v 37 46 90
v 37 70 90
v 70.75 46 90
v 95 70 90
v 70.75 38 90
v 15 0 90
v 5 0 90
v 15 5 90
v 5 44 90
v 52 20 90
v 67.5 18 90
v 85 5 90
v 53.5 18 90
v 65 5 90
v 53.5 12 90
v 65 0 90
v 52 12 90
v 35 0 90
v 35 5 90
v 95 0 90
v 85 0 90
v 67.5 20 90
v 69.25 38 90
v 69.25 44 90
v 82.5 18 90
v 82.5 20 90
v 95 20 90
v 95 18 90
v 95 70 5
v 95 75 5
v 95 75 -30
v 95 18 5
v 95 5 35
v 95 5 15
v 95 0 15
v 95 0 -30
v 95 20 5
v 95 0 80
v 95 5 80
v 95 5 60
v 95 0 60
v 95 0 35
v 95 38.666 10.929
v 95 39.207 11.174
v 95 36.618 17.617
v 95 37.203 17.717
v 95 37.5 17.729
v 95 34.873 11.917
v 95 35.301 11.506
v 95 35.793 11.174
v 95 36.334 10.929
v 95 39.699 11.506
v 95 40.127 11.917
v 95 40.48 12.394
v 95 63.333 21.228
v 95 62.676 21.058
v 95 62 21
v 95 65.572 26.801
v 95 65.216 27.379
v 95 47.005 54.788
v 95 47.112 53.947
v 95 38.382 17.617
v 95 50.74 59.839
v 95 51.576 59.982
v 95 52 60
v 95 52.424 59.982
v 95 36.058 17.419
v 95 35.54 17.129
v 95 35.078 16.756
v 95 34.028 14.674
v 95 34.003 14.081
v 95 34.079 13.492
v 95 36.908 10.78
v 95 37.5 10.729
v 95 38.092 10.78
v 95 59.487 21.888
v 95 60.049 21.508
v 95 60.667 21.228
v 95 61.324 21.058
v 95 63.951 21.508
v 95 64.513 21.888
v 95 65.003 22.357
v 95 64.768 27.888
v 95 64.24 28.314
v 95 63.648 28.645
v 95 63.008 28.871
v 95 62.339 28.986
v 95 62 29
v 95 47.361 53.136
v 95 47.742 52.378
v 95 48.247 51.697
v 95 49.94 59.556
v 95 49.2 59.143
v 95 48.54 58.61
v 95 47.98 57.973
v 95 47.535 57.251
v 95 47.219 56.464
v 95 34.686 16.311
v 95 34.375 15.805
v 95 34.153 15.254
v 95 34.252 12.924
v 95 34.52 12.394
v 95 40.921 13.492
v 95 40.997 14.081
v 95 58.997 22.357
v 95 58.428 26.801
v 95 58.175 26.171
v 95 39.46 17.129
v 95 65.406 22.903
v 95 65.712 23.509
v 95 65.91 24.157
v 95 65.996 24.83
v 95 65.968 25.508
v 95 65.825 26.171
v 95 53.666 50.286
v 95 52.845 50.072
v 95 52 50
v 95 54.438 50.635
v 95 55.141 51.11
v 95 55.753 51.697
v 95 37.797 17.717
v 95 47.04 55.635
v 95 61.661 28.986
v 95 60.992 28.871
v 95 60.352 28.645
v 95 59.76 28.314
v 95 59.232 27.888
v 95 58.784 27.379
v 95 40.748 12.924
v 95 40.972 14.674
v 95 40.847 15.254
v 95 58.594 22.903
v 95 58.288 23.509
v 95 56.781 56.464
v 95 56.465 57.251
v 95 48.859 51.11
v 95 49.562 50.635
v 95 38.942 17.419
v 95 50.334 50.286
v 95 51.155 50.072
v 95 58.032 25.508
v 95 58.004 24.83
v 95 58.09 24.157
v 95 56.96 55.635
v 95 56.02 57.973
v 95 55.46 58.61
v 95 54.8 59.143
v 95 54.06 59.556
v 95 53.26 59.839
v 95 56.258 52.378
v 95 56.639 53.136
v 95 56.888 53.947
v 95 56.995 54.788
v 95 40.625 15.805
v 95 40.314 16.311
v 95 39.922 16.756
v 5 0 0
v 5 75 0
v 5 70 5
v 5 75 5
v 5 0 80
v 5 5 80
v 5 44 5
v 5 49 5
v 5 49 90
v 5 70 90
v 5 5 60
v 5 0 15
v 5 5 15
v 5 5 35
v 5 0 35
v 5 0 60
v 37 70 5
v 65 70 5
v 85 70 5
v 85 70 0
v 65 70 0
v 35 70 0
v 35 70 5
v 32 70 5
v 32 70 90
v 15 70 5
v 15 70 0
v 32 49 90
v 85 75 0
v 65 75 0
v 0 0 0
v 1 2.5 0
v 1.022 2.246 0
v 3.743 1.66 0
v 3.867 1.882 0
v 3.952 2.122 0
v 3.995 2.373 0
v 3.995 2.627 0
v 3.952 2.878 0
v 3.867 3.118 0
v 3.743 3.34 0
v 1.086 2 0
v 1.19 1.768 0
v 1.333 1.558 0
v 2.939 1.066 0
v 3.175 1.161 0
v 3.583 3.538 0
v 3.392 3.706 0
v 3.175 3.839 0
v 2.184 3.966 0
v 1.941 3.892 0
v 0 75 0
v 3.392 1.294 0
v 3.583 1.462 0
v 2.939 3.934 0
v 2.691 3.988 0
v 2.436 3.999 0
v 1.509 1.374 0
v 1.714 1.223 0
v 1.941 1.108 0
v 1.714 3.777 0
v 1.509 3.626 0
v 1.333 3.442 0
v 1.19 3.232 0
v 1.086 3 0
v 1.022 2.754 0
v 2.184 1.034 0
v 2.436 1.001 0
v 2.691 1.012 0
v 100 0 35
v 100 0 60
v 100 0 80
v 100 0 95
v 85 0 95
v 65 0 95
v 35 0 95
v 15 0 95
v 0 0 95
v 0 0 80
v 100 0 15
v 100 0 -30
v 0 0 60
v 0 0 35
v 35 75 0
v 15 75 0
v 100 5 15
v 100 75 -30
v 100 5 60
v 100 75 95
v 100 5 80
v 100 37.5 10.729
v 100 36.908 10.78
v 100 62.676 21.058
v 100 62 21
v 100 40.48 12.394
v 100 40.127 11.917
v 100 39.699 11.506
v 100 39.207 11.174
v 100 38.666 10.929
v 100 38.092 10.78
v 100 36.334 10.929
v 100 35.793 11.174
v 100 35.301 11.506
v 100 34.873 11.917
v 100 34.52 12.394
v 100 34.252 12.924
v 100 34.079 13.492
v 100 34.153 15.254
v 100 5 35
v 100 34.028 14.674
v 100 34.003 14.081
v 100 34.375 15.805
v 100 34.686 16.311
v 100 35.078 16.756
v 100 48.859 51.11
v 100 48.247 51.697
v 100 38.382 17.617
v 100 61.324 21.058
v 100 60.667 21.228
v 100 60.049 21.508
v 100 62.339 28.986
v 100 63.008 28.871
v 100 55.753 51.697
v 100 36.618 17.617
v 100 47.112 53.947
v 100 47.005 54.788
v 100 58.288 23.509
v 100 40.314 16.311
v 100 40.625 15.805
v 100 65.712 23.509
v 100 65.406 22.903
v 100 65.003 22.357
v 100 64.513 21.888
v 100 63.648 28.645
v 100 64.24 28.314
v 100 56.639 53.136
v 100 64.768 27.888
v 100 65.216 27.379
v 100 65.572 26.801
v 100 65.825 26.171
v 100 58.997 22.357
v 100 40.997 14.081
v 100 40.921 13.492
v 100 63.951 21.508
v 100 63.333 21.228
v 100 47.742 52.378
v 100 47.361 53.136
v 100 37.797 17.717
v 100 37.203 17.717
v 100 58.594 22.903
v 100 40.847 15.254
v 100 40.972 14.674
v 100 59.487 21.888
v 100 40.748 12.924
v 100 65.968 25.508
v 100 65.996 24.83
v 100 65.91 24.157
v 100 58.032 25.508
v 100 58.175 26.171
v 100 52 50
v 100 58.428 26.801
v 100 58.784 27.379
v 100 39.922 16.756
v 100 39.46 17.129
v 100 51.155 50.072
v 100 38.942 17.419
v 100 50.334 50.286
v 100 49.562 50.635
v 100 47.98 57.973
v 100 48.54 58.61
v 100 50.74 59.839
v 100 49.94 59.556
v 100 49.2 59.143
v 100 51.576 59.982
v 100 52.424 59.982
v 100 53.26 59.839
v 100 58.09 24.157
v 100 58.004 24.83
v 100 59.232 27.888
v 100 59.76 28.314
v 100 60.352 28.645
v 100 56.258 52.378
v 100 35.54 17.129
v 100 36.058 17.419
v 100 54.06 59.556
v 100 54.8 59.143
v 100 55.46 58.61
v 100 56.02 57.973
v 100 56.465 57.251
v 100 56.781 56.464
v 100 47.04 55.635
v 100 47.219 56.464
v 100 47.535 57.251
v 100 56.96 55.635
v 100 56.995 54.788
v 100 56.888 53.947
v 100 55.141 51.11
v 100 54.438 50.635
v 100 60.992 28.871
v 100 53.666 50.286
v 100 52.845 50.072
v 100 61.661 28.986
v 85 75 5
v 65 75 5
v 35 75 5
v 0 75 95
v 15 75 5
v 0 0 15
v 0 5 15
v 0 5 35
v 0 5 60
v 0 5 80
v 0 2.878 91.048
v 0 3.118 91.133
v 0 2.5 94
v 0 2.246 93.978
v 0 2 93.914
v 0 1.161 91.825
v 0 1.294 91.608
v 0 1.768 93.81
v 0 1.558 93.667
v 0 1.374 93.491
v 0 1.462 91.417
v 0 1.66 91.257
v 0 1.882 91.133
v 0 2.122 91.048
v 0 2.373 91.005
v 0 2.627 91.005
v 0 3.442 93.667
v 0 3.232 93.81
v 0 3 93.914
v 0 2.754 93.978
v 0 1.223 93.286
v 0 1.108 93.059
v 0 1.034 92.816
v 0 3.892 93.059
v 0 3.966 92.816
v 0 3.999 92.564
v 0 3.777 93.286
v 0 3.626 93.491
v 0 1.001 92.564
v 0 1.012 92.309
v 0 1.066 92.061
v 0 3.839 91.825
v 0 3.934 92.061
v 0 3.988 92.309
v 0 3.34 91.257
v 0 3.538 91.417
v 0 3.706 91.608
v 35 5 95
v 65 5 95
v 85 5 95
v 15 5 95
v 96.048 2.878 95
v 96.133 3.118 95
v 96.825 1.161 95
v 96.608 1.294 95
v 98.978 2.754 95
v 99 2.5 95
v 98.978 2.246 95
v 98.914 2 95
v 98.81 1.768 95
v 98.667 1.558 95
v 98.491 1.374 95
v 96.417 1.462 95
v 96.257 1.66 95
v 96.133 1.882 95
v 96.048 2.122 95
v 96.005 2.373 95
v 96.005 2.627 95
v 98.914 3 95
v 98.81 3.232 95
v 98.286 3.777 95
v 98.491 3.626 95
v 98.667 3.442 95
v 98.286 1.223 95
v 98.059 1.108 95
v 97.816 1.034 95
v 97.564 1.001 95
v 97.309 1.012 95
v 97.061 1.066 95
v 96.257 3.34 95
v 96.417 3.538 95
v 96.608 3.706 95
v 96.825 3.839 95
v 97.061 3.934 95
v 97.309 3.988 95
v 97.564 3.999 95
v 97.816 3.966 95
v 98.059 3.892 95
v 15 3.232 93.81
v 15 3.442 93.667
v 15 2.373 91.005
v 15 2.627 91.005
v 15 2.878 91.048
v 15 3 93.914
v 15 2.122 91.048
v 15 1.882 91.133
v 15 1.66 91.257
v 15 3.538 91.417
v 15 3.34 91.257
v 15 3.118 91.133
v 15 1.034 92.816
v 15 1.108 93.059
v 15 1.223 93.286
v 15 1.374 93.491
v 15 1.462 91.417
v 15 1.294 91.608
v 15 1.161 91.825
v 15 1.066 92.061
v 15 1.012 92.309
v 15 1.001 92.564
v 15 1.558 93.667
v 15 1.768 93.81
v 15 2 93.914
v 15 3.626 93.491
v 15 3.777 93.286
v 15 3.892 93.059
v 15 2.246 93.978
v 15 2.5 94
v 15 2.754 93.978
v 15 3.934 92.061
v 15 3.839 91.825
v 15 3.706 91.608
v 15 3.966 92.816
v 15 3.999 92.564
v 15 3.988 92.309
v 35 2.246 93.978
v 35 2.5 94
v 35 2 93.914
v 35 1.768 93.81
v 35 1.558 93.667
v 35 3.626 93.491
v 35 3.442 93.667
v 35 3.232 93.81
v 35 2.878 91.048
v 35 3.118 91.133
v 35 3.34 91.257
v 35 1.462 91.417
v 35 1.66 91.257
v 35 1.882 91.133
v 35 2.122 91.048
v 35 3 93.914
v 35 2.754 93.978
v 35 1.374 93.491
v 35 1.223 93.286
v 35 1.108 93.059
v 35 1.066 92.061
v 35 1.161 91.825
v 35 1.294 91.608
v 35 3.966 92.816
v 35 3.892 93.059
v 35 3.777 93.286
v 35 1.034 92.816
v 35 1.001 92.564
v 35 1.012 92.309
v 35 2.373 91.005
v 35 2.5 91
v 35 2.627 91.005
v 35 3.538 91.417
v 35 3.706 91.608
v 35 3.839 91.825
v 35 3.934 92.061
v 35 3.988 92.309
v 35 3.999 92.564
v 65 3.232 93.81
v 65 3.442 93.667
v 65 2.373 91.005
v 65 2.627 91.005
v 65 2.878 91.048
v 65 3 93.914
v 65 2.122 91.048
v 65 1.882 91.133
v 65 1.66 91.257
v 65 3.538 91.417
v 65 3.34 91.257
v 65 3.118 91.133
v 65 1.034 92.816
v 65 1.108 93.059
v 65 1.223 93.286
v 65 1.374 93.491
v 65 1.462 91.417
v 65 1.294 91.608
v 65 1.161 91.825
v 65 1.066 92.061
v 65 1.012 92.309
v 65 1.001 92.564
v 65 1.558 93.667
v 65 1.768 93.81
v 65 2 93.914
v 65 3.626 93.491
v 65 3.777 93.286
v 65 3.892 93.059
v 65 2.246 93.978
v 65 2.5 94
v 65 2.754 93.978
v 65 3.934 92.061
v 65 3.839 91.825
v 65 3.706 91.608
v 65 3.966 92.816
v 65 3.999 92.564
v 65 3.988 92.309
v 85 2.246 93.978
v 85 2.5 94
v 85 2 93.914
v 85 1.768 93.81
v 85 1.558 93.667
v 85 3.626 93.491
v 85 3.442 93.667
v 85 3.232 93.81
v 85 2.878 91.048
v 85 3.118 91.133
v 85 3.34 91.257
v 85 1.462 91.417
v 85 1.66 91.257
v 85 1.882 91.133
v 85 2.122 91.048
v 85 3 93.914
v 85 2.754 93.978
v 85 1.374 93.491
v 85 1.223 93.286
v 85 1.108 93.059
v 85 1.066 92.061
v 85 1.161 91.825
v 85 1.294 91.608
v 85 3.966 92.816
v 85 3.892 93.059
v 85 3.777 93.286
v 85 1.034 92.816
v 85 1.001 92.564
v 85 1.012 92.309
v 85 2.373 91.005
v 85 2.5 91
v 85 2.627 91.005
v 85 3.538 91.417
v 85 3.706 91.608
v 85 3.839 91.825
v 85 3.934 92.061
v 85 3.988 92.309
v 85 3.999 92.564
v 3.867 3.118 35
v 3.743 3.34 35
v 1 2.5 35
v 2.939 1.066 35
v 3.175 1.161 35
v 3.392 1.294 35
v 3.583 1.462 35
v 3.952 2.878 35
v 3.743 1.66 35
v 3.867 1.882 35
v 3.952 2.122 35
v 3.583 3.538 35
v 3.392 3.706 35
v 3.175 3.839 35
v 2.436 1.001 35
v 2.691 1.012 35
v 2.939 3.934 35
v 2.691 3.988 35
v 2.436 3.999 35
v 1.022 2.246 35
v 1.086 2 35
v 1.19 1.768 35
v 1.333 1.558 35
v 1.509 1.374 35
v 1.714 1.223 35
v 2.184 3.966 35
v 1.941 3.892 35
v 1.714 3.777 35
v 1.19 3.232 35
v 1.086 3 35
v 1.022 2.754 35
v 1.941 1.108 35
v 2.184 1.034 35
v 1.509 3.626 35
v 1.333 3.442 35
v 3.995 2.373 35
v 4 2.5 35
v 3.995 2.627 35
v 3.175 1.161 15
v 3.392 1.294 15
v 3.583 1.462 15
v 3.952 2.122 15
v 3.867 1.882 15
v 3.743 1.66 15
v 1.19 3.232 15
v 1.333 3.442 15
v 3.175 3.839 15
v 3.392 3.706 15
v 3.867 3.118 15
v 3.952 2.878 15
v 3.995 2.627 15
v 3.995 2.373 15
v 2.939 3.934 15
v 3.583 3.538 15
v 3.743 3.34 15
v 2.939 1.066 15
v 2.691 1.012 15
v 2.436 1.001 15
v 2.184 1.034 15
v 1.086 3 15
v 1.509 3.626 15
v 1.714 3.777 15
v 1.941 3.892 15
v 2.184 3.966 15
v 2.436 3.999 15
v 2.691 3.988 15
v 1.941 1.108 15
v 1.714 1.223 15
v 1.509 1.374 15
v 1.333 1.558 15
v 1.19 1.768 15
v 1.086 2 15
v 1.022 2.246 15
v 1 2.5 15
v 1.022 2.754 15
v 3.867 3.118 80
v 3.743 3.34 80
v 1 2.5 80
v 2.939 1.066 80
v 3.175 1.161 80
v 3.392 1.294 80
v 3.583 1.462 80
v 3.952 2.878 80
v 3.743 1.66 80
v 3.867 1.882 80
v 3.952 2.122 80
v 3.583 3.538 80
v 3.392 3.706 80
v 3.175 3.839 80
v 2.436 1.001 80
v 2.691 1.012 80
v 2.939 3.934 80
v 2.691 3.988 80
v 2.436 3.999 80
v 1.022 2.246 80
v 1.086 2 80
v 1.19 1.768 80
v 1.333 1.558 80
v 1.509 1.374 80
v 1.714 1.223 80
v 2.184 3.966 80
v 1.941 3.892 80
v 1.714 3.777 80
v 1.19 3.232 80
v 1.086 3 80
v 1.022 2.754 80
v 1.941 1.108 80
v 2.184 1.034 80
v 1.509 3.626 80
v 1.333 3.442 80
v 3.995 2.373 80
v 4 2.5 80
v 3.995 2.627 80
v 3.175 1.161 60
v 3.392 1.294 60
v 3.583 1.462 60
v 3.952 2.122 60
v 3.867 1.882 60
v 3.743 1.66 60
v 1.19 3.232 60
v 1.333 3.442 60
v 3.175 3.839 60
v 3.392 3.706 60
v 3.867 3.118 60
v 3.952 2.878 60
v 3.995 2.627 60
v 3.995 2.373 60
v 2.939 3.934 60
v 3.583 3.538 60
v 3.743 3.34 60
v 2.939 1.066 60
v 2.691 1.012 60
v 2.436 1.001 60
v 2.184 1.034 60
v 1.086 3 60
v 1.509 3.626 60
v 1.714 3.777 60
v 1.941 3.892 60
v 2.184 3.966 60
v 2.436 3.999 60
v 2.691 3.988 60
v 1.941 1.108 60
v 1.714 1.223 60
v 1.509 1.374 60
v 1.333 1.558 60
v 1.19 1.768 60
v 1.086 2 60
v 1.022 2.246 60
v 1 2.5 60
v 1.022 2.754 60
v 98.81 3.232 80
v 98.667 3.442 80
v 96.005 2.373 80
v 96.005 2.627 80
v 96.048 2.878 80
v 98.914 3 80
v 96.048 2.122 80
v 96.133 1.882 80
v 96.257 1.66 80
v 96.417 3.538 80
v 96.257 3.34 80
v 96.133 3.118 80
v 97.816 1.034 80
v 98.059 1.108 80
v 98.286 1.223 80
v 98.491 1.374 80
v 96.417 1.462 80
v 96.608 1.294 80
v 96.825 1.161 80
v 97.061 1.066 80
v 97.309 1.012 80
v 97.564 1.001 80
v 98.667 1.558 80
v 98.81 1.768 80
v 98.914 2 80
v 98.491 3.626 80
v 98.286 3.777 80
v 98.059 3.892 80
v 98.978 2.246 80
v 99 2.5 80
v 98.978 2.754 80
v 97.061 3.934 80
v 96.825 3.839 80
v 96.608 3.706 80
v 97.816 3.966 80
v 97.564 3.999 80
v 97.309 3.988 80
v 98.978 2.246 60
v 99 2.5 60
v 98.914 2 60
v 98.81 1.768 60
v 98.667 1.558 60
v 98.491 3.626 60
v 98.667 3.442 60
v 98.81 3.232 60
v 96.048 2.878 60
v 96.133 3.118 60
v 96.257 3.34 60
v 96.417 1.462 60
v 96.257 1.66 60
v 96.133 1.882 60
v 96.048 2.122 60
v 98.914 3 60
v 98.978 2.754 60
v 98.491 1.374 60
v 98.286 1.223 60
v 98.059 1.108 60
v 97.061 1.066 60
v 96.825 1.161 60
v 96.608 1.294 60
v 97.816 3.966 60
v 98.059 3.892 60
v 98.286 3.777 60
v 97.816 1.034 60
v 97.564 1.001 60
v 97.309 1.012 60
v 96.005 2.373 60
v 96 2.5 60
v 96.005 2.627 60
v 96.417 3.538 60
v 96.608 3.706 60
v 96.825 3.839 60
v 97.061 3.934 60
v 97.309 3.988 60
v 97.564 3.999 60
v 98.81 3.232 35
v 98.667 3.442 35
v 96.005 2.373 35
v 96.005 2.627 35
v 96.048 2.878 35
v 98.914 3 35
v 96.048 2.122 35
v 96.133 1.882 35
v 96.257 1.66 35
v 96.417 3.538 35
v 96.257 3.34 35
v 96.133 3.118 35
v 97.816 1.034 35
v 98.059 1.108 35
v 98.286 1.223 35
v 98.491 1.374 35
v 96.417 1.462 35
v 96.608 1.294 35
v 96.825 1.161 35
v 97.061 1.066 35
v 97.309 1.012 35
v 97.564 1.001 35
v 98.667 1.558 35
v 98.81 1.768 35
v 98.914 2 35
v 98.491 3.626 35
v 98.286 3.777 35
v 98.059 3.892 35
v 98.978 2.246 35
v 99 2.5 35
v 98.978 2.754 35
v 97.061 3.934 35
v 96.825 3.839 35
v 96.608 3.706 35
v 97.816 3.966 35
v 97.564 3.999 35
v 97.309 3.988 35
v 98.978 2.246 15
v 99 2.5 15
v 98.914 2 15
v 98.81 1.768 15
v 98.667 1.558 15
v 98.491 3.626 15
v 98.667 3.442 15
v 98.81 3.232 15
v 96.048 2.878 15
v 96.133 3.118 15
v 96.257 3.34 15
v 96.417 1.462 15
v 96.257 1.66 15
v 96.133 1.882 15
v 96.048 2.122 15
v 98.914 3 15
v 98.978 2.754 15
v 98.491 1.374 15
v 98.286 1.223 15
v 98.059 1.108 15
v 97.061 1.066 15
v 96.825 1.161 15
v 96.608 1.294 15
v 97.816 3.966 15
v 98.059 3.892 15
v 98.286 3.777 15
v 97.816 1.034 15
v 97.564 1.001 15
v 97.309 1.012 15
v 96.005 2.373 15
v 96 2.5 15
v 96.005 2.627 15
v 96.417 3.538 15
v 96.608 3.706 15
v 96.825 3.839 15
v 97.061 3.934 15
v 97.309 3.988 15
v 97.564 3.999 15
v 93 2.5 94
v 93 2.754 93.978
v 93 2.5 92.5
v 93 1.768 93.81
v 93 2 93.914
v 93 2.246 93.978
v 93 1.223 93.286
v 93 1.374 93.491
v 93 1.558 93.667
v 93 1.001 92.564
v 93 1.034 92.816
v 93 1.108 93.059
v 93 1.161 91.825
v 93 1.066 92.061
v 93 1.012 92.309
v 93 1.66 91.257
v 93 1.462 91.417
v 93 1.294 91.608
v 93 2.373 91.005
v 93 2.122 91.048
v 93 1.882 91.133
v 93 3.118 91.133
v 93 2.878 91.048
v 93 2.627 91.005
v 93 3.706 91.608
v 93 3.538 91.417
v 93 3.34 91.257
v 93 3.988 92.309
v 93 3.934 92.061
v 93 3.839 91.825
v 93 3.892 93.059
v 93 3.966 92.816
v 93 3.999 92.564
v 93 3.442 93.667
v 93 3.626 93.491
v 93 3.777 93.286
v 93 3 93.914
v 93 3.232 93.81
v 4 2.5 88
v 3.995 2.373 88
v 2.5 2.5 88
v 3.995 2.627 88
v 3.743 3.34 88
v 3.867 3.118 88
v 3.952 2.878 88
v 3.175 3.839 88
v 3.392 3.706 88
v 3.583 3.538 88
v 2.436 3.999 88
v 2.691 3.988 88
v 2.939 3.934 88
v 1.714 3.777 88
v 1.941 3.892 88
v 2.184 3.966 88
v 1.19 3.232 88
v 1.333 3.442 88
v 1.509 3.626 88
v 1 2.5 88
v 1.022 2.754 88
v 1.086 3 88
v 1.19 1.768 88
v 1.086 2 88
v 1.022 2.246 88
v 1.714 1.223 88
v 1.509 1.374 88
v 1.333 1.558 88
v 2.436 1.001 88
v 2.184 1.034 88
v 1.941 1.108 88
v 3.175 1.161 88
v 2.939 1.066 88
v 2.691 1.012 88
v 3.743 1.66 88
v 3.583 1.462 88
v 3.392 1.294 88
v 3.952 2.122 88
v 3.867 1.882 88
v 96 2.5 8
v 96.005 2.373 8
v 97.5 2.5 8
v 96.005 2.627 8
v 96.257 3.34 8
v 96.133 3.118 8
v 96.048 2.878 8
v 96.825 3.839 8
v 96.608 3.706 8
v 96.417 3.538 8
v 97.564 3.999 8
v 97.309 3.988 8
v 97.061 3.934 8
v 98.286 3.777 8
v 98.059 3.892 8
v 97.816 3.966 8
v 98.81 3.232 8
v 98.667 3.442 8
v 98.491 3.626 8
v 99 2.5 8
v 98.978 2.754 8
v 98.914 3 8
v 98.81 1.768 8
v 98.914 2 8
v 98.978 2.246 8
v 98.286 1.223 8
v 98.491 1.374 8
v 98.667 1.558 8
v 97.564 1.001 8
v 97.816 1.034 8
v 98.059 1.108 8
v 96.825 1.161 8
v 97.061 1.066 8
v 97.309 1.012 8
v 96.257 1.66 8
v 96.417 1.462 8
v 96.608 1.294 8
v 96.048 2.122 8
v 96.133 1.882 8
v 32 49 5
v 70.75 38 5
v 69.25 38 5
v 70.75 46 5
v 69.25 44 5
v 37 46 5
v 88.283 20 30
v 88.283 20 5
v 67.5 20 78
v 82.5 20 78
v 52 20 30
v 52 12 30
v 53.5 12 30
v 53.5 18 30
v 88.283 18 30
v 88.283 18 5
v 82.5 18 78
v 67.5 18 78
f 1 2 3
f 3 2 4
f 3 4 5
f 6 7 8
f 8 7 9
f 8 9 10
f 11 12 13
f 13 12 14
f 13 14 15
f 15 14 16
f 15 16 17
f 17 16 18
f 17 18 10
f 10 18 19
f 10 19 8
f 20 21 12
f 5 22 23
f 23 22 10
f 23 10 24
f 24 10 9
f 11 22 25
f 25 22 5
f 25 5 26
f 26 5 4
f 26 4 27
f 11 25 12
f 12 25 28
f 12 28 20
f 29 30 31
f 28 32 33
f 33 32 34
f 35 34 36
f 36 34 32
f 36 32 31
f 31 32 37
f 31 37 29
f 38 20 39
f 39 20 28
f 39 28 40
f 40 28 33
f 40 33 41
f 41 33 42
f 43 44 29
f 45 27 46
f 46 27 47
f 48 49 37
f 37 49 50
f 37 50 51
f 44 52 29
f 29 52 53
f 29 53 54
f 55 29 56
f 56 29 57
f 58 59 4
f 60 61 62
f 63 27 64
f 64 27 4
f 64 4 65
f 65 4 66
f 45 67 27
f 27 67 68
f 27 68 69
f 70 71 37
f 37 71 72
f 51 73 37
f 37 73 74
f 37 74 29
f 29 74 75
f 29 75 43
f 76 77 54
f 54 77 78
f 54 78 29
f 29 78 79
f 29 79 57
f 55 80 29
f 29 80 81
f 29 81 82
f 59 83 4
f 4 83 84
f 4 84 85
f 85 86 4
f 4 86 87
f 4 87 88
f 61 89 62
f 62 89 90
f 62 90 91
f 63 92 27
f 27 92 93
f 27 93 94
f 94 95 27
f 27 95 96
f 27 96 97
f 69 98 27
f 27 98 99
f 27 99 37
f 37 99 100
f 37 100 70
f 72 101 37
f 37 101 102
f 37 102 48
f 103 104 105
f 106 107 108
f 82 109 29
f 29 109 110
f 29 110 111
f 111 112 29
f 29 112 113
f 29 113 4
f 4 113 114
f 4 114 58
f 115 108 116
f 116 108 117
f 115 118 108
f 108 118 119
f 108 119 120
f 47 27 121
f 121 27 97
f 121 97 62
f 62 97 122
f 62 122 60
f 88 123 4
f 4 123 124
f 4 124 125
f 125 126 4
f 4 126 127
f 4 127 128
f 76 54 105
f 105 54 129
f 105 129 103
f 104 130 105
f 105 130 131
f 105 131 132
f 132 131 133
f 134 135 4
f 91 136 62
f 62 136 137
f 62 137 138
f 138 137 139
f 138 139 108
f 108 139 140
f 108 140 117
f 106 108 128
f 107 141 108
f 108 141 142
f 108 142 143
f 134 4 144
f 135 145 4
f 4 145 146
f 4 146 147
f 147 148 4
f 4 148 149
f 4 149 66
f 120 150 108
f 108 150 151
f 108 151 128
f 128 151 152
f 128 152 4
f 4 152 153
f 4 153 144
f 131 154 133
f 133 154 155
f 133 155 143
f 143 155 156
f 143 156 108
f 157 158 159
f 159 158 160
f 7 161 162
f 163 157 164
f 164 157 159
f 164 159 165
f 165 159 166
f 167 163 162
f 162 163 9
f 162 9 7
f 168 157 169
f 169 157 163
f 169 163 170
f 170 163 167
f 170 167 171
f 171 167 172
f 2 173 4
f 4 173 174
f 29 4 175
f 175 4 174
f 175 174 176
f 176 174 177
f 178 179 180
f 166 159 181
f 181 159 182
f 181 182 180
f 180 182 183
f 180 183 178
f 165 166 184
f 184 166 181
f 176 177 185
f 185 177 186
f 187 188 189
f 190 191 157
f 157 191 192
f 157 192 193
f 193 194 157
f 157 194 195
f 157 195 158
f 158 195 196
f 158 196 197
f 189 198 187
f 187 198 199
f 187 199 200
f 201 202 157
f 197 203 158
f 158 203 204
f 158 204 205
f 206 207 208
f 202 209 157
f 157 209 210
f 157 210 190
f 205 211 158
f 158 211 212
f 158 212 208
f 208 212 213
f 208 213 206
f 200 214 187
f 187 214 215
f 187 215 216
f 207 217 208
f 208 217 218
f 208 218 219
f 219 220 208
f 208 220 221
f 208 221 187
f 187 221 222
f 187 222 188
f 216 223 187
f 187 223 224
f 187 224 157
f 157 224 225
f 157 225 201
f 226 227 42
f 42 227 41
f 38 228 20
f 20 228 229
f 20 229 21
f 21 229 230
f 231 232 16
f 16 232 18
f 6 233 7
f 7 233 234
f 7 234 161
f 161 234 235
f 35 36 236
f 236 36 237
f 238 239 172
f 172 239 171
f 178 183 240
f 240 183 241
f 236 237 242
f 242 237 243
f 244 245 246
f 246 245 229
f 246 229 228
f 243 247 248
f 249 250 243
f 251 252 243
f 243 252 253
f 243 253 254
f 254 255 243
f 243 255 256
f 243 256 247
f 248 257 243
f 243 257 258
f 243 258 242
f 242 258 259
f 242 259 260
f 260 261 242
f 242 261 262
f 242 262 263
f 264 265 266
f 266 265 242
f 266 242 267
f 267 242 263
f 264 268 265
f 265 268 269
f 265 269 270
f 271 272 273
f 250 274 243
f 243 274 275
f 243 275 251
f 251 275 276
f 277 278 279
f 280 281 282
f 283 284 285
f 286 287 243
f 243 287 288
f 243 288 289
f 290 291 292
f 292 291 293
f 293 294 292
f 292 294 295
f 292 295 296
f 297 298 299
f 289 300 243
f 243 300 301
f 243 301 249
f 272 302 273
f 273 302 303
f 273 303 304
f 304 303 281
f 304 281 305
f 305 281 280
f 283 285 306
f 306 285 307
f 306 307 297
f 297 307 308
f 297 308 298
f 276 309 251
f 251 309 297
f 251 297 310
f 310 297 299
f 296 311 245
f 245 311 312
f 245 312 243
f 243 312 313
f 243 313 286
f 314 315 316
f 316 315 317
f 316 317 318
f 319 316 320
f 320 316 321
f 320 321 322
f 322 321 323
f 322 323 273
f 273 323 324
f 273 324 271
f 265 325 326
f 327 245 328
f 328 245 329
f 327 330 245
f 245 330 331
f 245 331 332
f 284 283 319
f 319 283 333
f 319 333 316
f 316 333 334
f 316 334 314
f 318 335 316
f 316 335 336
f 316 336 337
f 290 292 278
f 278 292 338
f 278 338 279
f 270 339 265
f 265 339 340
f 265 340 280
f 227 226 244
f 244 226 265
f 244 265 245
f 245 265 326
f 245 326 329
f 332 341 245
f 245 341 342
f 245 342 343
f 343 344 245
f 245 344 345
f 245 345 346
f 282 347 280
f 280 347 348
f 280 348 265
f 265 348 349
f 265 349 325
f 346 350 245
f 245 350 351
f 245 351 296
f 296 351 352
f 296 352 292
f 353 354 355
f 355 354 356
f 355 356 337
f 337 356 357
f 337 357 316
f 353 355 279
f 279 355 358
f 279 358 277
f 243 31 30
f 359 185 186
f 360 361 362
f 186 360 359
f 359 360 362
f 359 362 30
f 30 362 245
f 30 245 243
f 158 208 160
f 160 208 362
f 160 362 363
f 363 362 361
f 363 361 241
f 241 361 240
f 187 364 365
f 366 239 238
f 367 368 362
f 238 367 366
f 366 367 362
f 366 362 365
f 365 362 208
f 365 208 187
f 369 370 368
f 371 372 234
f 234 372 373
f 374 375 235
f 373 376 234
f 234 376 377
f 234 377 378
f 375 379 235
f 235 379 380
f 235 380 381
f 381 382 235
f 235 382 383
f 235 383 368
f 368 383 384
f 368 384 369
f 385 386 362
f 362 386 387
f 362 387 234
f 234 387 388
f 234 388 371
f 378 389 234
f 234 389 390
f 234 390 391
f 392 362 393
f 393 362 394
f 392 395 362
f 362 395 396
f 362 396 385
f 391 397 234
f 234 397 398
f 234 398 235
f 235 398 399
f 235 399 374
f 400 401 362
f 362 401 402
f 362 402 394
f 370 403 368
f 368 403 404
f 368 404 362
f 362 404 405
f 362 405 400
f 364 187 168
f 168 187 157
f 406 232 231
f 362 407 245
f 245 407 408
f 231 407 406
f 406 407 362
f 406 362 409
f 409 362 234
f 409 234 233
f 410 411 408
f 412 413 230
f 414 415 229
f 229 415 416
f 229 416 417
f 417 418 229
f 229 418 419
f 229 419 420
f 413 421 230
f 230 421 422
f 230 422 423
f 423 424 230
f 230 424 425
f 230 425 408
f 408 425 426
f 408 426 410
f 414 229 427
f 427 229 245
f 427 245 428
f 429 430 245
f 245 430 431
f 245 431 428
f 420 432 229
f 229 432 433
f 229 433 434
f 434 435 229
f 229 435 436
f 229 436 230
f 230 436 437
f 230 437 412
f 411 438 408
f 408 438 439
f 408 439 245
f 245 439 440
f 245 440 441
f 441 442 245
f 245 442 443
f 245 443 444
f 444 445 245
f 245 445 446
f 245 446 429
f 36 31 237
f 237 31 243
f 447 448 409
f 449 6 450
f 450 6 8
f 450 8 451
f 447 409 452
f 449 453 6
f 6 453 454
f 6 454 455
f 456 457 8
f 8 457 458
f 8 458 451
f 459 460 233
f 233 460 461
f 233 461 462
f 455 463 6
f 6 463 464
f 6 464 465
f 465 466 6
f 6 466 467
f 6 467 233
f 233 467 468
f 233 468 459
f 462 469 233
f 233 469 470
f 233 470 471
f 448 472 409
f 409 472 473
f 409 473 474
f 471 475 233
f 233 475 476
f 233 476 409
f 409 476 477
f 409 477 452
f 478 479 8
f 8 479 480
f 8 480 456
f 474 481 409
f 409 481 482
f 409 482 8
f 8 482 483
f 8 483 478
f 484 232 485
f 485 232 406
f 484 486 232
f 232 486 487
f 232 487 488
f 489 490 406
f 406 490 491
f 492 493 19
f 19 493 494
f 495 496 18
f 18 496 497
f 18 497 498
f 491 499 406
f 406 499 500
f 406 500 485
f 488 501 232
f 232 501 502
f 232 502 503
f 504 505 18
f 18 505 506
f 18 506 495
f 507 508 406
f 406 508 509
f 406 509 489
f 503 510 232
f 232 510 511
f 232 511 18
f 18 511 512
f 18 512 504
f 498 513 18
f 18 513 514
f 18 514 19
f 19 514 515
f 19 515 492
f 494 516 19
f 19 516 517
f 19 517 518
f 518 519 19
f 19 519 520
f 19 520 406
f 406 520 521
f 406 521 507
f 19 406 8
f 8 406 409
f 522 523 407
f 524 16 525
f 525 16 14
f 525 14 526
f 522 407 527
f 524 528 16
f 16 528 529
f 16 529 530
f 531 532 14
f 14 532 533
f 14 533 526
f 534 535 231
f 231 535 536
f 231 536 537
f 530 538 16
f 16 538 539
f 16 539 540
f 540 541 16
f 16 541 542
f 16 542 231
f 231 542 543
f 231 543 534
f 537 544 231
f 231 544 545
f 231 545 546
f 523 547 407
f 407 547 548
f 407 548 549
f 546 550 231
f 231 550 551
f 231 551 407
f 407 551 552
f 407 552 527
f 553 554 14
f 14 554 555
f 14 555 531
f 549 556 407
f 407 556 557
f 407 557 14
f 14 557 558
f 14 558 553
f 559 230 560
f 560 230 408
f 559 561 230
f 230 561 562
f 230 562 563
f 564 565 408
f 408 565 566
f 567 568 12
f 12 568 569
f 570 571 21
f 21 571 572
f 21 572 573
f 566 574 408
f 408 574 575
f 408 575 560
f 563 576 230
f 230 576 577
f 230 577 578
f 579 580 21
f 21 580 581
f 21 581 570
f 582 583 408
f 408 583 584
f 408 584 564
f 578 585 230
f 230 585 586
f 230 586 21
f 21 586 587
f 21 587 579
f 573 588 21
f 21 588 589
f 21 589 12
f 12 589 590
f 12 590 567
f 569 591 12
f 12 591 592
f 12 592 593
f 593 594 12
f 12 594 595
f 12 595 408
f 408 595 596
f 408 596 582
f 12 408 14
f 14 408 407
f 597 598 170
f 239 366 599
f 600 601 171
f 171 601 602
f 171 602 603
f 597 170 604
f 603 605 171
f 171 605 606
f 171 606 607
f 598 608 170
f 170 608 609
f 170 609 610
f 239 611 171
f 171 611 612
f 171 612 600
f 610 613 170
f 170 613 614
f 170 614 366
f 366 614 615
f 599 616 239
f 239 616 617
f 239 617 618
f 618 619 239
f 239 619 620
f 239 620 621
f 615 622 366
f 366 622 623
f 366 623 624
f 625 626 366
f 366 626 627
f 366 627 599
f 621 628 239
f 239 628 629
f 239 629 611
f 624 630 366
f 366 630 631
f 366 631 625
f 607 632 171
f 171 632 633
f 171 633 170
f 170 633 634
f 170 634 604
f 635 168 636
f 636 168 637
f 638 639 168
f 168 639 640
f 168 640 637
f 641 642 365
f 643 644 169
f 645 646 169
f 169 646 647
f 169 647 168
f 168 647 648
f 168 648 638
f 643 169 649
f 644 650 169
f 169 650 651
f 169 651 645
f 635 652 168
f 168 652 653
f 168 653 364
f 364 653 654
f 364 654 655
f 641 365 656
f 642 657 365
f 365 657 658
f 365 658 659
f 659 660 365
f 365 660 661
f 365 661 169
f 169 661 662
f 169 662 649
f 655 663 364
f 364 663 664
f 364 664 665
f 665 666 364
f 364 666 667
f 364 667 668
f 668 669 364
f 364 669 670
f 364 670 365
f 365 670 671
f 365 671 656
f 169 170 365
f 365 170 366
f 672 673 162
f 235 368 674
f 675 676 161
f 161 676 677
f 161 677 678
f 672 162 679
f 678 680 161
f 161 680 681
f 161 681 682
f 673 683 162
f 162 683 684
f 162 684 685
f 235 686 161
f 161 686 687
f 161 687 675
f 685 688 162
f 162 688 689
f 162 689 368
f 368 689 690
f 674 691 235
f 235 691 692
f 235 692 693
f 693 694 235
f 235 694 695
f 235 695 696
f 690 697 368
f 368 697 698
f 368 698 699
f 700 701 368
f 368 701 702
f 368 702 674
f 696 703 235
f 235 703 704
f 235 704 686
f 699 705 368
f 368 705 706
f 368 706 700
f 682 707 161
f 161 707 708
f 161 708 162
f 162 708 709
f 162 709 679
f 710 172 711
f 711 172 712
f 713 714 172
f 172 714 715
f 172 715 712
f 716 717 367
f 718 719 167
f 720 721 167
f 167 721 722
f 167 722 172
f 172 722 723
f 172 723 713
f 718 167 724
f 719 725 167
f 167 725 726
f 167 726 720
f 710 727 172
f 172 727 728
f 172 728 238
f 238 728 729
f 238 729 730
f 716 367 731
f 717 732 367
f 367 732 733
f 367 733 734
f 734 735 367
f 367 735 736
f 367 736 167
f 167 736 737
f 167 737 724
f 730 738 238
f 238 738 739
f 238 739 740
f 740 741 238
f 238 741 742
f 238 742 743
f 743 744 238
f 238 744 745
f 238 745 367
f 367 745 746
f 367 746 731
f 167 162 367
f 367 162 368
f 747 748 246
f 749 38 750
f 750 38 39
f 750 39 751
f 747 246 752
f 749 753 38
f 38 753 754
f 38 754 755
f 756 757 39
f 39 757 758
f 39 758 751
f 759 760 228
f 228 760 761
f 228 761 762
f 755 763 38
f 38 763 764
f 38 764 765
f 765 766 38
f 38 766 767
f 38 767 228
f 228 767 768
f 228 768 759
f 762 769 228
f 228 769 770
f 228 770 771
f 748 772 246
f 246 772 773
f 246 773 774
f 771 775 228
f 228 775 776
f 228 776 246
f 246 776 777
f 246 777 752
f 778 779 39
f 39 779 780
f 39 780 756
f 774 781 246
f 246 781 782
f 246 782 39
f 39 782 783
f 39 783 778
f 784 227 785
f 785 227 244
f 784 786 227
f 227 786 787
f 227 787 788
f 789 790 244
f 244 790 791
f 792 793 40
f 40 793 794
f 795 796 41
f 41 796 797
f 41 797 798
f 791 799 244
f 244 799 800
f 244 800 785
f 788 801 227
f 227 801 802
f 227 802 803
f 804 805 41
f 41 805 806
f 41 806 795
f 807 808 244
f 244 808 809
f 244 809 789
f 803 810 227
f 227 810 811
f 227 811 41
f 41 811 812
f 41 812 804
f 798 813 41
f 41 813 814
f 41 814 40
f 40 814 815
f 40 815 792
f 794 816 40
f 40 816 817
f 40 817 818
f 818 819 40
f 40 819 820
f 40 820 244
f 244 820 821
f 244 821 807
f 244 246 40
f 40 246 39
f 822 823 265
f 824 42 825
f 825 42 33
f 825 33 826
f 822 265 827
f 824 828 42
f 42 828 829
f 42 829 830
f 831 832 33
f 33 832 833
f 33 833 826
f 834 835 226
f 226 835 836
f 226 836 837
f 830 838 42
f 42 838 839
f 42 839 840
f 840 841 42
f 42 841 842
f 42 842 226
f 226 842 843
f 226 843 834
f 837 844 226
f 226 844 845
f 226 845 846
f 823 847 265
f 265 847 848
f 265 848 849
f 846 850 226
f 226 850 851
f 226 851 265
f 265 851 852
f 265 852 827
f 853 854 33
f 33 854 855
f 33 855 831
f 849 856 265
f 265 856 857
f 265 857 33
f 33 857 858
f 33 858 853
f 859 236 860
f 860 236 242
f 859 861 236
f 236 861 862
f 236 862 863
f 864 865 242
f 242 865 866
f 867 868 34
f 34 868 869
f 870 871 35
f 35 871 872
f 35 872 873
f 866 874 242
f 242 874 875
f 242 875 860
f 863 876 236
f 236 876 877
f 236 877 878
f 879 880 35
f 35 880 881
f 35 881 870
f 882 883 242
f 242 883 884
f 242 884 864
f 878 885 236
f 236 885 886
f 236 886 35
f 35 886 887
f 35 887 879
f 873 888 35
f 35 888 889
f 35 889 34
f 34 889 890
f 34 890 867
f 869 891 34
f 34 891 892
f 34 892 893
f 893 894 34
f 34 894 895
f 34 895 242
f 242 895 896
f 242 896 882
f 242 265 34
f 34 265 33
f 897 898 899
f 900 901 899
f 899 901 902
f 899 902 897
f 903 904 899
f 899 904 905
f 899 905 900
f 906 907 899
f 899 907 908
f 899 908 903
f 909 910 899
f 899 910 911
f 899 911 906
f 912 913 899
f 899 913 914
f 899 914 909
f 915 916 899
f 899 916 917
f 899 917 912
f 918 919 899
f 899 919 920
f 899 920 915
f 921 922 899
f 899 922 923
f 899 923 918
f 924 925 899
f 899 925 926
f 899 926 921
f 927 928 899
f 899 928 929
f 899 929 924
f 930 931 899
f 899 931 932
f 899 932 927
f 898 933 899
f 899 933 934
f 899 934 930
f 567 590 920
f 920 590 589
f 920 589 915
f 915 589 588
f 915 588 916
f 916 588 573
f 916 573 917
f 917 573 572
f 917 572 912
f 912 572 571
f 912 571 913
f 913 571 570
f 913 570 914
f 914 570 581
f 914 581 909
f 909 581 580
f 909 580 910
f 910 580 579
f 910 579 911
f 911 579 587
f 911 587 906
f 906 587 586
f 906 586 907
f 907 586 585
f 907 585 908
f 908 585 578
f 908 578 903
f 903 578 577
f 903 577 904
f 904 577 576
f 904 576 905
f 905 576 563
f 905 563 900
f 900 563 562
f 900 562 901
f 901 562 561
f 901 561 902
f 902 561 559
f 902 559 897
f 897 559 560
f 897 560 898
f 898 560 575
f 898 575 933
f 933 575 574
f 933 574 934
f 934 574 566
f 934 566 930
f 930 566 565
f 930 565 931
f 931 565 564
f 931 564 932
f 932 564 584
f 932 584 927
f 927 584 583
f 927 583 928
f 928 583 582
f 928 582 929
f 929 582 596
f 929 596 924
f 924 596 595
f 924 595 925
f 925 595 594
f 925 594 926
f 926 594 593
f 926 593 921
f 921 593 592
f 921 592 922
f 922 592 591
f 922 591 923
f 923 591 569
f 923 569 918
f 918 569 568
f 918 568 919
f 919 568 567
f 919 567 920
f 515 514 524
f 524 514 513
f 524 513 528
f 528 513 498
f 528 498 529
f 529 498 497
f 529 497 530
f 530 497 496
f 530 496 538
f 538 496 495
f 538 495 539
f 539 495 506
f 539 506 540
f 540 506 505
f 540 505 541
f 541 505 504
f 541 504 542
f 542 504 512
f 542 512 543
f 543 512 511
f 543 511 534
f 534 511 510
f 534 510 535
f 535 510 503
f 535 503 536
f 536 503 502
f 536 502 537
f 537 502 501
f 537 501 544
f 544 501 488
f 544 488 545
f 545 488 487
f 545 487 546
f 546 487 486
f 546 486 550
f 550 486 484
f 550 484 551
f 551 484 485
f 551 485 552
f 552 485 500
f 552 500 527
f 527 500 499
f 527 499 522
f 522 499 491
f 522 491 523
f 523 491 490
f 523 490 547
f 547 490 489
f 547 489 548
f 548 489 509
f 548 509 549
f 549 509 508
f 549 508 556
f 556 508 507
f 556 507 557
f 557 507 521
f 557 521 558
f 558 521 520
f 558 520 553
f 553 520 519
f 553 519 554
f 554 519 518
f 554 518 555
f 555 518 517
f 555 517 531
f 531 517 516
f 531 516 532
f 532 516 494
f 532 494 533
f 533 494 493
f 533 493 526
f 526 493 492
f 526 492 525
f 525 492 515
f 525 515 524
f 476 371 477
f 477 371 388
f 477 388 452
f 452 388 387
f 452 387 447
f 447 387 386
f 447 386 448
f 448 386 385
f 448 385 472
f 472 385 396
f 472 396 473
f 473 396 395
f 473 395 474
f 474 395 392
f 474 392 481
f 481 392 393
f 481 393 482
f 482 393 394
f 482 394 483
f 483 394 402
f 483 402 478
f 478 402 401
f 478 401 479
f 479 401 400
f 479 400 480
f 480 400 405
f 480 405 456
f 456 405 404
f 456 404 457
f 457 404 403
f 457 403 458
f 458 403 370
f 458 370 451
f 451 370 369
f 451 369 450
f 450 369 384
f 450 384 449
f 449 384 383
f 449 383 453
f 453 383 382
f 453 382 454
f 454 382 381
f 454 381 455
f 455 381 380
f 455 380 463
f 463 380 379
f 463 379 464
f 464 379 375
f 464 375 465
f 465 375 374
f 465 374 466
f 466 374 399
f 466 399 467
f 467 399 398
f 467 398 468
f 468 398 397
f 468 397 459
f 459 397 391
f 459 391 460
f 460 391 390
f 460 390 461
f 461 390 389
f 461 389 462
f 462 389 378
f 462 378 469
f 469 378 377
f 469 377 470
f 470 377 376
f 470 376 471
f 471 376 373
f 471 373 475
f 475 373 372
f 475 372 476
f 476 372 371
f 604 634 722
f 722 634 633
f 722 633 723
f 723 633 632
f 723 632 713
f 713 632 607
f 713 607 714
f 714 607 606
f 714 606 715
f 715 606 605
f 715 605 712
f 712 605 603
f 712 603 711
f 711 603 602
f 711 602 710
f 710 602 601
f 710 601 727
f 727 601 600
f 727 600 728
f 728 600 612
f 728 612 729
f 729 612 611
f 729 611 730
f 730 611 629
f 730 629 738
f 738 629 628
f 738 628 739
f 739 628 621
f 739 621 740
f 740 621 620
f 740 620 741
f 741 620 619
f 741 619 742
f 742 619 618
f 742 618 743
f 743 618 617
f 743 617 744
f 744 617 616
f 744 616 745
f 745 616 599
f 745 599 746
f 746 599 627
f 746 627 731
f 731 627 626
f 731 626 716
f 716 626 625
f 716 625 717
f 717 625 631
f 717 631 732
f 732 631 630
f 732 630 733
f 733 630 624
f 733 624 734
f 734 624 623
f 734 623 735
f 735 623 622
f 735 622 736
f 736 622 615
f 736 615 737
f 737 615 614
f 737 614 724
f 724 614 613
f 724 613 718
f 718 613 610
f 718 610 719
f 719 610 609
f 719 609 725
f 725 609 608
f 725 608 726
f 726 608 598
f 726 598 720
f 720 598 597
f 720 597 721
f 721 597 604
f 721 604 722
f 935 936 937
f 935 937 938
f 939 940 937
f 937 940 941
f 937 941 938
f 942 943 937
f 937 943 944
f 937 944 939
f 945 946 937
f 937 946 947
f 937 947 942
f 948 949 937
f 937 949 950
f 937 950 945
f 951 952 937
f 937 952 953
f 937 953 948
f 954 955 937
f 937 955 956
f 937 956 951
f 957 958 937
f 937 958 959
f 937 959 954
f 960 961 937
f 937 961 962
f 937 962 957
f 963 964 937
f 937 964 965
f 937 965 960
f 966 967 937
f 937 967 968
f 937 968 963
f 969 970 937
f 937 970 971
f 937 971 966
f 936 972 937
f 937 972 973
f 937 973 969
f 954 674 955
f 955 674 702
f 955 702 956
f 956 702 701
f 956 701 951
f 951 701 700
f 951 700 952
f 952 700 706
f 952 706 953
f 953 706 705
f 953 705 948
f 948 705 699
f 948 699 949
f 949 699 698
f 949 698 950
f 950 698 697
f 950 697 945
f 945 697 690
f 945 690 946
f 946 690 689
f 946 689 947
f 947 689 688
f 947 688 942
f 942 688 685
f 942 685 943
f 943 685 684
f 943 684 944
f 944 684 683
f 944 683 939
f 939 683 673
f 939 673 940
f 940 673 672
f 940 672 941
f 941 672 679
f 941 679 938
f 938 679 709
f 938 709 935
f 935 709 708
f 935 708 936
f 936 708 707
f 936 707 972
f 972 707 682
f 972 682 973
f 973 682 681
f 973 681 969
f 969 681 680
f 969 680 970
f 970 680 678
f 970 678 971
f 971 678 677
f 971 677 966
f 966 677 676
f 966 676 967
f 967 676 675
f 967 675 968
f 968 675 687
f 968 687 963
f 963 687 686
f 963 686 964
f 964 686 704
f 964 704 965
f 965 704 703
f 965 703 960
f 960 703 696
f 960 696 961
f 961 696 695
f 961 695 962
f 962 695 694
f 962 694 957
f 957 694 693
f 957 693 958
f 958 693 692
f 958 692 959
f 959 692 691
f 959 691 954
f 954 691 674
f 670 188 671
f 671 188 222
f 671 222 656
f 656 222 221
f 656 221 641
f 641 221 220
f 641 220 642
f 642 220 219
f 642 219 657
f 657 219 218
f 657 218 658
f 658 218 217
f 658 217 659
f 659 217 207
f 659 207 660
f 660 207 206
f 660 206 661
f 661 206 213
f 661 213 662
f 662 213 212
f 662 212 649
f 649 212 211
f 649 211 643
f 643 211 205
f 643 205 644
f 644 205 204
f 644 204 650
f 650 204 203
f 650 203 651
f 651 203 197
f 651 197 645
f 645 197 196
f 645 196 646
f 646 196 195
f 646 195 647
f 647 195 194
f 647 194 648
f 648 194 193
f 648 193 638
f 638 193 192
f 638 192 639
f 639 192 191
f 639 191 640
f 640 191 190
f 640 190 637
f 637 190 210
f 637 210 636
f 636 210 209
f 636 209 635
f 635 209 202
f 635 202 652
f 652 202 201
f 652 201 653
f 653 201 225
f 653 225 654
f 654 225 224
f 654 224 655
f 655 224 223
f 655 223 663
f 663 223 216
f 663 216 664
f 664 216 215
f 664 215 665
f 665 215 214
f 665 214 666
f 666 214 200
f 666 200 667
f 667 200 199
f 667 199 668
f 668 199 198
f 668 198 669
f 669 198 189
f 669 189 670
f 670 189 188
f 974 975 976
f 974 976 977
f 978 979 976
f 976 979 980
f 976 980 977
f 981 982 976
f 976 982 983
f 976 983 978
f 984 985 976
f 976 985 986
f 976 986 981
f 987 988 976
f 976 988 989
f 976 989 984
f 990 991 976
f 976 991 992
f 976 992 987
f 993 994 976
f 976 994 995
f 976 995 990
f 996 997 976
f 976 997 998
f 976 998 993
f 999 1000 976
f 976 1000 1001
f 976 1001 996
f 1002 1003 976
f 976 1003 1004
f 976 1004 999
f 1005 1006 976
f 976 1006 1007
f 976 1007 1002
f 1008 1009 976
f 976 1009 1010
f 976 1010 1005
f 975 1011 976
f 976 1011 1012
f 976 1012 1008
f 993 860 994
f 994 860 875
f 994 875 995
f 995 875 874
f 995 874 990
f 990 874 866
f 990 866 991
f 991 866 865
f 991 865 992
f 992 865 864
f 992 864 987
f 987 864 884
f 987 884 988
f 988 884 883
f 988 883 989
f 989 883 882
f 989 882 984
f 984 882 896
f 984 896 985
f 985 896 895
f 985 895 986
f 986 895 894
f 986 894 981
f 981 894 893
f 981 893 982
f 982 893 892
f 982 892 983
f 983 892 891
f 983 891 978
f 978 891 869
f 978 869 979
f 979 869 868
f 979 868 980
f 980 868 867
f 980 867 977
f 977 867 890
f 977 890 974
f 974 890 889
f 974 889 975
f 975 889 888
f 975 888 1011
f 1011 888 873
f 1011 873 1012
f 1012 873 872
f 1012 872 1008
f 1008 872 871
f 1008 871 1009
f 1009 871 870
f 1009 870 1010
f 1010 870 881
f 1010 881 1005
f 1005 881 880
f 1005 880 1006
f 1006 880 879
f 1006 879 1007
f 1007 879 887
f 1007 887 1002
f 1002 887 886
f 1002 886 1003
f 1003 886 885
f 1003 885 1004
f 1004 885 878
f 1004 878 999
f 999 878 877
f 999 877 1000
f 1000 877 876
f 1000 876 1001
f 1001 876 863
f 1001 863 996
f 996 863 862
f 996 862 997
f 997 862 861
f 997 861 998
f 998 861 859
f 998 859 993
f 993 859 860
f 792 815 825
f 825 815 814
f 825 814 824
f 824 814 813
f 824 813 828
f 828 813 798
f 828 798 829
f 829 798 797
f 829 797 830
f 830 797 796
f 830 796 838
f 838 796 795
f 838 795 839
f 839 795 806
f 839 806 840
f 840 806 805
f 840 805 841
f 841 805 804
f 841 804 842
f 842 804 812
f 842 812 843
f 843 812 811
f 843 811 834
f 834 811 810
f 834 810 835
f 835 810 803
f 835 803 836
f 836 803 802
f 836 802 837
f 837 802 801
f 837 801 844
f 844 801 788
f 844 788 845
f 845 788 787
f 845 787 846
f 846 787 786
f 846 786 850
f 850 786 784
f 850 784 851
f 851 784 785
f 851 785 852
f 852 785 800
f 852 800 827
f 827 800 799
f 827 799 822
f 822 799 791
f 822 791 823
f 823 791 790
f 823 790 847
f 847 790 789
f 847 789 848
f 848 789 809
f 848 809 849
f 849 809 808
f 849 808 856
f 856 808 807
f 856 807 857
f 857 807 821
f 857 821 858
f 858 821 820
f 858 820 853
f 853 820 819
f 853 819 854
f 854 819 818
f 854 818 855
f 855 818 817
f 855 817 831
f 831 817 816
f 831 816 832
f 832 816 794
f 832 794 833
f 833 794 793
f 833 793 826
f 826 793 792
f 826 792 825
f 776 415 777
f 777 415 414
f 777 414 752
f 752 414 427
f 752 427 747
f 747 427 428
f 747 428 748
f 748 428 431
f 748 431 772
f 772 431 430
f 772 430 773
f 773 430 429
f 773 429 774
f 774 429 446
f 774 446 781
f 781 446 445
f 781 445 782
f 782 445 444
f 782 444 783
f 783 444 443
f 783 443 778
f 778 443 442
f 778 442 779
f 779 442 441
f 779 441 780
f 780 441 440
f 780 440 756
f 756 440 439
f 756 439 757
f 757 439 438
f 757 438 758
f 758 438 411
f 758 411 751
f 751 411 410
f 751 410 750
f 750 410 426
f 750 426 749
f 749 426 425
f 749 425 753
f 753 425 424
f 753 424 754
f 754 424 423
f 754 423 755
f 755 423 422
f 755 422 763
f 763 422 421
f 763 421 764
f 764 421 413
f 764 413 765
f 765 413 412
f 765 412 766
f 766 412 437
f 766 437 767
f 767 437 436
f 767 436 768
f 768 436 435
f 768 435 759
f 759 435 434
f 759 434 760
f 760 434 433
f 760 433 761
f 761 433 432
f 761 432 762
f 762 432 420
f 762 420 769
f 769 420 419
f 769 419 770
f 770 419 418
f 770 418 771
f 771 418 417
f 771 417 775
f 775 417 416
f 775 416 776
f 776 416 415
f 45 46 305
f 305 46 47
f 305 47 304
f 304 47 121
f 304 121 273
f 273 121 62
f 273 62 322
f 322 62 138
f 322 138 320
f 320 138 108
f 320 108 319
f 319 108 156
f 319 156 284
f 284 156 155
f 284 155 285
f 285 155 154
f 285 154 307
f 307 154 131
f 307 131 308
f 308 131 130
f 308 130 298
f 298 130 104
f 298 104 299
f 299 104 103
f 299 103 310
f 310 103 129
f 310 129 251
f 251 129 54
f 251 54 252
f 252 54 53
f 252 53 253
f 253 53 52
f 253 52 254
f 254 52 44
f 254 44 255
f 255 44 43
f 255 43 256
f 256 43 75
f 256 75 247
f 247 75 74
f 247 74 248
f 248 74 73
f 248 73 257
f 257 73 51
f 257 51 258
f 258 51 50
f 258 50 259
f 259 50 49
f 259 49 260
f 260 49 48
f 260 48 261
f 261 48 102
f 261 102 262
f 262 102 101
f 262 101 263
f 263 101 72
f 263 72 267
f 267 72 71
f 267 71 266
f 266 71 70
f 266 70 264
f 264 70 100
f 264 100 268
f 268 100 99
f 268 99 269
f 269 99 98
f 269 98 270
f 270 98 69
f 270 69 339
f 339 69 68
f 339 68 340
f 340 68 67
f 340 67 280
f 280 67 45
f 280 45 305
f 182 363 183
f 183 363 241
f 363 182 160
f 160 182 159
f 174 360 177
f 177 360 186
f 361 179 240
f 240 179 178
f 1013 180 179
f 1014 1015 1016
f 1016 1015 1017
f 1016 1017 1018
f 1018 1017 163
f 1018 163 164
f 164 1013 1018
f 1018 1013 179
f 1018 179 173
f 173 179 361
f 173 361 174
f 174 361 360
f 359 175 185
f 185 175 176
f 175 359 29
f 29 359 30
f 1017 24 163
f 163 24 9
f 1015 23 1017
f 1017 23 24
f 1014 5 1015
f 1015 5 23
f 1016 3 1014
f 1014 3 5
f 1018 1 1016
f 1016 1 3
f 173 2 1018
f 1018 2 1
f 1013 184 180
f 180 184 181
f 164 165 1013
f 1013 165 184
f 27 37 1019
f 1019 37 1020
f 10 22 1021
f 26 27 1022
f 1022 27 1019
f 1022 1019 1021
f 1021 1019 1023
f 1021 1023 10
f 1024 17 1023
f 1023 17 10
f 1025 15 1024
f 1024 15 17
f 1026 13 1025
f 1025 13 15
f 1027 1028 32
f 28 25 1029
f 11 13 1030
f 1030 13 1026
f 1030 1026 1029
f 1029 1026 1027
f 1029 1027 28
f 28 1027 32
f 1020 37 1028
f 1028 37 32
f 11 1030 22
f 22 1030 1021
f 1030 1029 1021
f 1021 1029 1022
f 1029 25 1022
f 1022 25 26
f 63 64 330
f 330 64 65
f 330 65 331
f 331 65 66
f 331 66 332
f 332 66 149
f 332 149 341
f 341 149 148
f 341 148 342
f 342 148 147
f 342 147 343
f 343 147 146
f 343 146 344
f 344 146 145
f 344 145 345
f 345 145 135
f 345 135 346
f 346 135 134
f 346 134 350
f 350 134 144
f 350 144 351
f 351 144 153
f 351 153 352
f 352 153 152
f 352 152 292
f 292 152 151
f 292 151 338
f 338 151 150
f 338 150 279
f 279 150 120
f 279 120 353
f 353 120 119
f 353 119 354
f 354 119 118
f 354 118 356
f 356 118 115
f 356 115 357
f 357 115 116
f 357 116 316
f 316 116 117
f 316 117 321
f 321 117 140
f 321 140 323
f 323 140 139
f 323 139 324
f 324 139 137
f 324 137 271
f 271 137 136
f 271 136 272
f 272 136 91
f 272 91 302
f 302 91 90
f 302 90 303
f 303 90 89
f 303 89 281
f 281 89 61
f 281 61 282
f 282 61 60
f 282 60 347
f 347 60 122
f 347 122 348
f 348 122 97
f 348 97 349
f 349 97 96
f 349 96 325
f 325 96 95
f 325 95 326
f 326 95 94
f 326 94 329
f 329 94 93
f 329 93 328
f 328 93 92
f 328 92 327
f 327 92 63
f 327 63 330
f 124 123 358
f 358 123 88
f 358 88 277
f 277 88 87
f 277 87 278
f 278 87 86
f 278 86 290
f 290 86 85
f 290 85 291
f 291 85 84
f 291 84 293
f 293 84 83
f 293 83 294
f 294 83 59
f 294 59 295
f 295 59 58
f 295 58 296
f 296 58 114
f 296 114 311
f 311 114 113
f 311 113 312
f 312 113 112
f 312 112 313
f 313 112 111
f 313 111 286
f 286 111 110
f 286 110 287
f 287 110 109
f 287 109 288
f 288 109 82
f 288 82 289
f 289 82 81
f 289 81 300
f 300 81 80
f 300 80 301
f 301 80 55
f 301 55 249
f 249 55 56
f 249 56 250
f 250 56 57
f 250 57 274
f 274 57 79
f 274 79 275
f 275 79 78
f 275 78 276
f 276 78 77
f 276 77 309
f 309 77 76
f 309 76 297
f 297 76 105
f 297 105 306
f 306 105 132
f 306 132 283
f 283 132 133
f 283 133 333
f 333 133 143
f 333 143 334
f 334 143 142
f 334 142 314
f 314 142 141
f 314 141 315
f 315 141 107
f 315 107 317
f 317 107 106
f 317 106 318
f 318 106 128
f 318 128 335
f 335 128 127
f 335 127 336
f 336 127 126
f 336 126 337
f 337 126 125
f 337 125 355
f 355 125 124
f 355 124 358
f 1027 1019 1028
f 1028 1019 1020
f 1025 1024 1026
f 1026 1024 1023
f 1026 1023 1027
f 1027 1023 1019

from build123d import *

# Parameters (mm, degrees)
VOLUME_BOITIER_DEPTH     = 90
ESQUISSE2_W              = 100
ESQUISSE2_H              = 75
FACE_INF_RIEURE_DEPTH    = 5
ESQUISSE3_W              = 5
ESQUISSE3_H              = 75
FACE_PILE_DEPTH          = 30
ESQUISSE7_W              = 5
ESQUISSE7_H              = 20
ESQUISSE7_W_2            = 20
ESQUISSE7_H_2            = 5
ENL_V_MAT_EXTRU_2_DEPTH  = 5
ESQUISSE8_R              = 1.5
ENL_V_MAT_EXTRU_3_DEPTH  = 93
ESQUISSE9_R              = 1.5
ENL_V_MAT_EXTRU_4_DEPTH  = 88
ESQUISSE10_R             = 1.5
ENL_V_MAT_EXTRU_5_DEPTH  = 87
ENL_V_MAT_EXTRU_6_REACH  = 159.003
ESQUISSE11_R             = 3.5
ESQUISSE14_W             = 10
ESQUISSE14_H             = 5
ESQUISSE14_W_2           = 30
ENL_V_MAT_EXTRU_8_DEPTH  = 5
BOSS_EXTRU_7_DEPTH       = 85
ENL_V_MAT_EXTRU_10_REACH = 151.245
ESQUISSE15_W             = 15
ESQUISSE15_H             = 12
ENL_V_MAT_EXTRU_11_REACH = 159.003
ESQUISSE16_R             = 4
ESQUISSE16_R_2           = 5
ENL_V_MAT_EXTRU_12_DEPTH = 25


with BuildPart() as part:
    # Esquisse1 → volume boitier (new body)
    with BuildSketch(Plane.XY):
        Polygon((0, 75), (0, 0), (5, 0), (5, 70), (95, 70), (95, 0), (100, 0), (100, 75), align=None)
    extrude(amount=VOLUME_BOITIER_DEPTH)

    # Esquisse2 → face inférieure (add)
    with BuildSketch(Plane.XY.offset(90)):
        with Locations((50, 37.5)):
            Rectangle(ESQUISSE2_W, ESQUISSE2_H)
    extrude(amount=FACE_INF_RIEURE_DEPTH)

    # Esquisse3 → face pile (add)
    with BuildSketch(Plane(origin=(0, 0, 0), x_dir=(-1, 0, 0), z_dir=(0, 0, -1))):
        with Locations((-97.5, 37.5)):
            Rectangle(ESQUISSE3_W, ESQUISSE3_H)
    extrude(amount=FACE_PILE_DEPTH)

    # Esquisse7 → Enlèv. mat.-Extru.2 (cut)
    with BuildSketch(Plane.XZ):
        with Locations((2.5, 25)):
            Rectangle(ESQUISSE7_W, ESQUISSE7_H)
        with Locations((2.5, 70)):
            Rectangle(ESQUISSE7_W, ESQUISSE7_H)
        with Locations((25, 92.5)):
            Rectangle(ESQUISSE7_W_2, ESQUISSE7_H_2)
        with Locations((75, 92.5)):
            Rectangle(ESQUISSE7_W_2, ESQUISSE7_H_2)
        with Locations((97.5, 70)):
            Rectangle(ESQUISSE7_W, ESQUISSE7_H)
        with Locations((97.5, 25)):
            Rectangle(ESQUISSE7_W, ESQUISSE7_H)
    extrude(amount=-ENL_V_MAT_EXTRU_2_DEPTH, mode=Mode.SUBTRACT)

    # Esquisse8 → Enlèv. mat.-Extru.3 (cut)
    with BuildSketch(Plane.ZY):
        with Locations((92.5, 2.5)):
            Circle(ESQUISSE8_R)
    extrude(amount=-ENL_V_MAT_EXTRU_3_DEPTH, mode=Mode.SUBTRACT)

    # Esquisse9 → Enlèv. mat.-Extru.4 (cut)
    with BuildSketch(Plane(origin=(0, 0, 0), x_dir=(-1, 0, 0), z_dir=(0, 0, -1))):
        with Locations((-2.5, 2.5)):
            Circle(ESQUISSE9_R)
    extrude(amount=-ENL_V_MAT_EXTRU_4_DEPTH, mode=Mode.SUBTRACT)

    # Esquisse10 → Enlèv. mat.-Extru.5 (cut)
    with BuildSketch(Plane.XY.offset(95)):
        with Locations(Location((97.5, 2.5, 0), (0, 0, 180))):
            Circle(ESQUISSE10_R)
    extrude(amount=-ENL_V_MAT_EXTRU_5_DEPTH, mode=Mode.SUBTRACT)

    # Esquisse11 → Enlèv. mat.-Extru.6 (cut, up to next)
    with BuildSketch(Plane(origin=(100, 0, 0), x_dir=(0, 0, -1), z_dir=(1, 0, 0)), mode=Mode.PRIVATE) as enl_v_mat_extru_6_sk1:
        with Locations((-14.229443479, 37.5)):
            Circle(ESQUISSE11_R)
    enl_v_mat_extru_6_tool1 = extrude(enl_v_mat_extru_6_sk1.sketch, amount=-ENL_V_MAT_EXTRU_6_REACH, mode=Mode.PRIVATE) & part.part
    add(enl_v_mat_extru_6_tool1.solids().sort_by_distance((100, 37.5, 14.229443))[0], mode=Mode.SUBTRACT)

    # Esquisse14 → Enlèv. mat.-Extru.8 (cut)
    with BuildSketch(Plane(origin=(0, 0, 0), x_dir=(-1, 0, 0), z_dir=(0, 0, -1))):
        with Locations((-90, 72.5)):
            Rectangle(ESQUISSE14_W, ESQUISSE14_H)
        with Locations((-50, 72.5)):
            Rectangle(ESQUISSE14_W_2, ESQUISSE14_H)
        with Locations((-10, 72.5)):
            Rectangle(ESQUISSE14_W, ESQUISSE14_H)
    extrude(amount=-ENL_V_MAT_EXTRU_8_DEPTH, mode=Mode.SUBTRACT)

    # Esquisse12 → Boss.-Extru.7 (add)
    with BuildSketch(Plane(origin=(0, 0, 90), x_dir=(-1, 0, 0), z_dir=(0, 0, -1))):
        Polygon((-37, 46), (-70.75, 46), (-70.75, 38), (-69.25, 38), (-69.25, 44), (-5, 44), (-5, 49), (-32, 49), (-32, 70), (-37, 70), align=None)
        Polygon((-52, 16.786904399), (-52, 12), (-53.5, 12), (-53.5, 18), (-95, 18), (-95, 20), (-52, 20), align=None)
    extrude(amount=BOSS_EXTRU_7_DEPTH)

    # Esquisse15 → Enlèv. mat.-Extru.10 (cut, up to next)
    with BuildSketch(Plane.XZ.offset(-18), mode=Mode.PRIVATE) as enl_v_mat_extru_10_sk1:
        with Locations((75, 84)):
            Rectangle(ESQUISSE15_W, ESQUISSE15_H)
    enl_v_mat_extru_10_tool1 = extrude(enl_v_mat_extru_10_sk1.sketch, amount=-ENL_V_MAT_EXTRU_10_REACH, mode=Mode.PRIVATE) & part.part
    add(enl_v_mat_extru_10_tool1.solids().sort_by_distance((75, 18, 84))[0], mode=Mode.SUBTRACT)

    # Esquisse16 → Enlèv. mat.-Extru.11 (cut, up to next)
    with BuildSketch(Plane(origin=(100, 0, 0), x_dir=(0, 0, -1), z_dir=(1, 0, 0)), mode=Mode.PRIVATE) as enl_v_mat_extru_11_sk1:
        with Locations((-25, 62)):
            Circle(ESQUISSE16_R)
    enl_v_mat_extru_11_tool1 = extrude(enl_v_mat_extru_11_sk1.sketch, amount=-ENL_V_MAT_EXTRU_11_REACH, mode=Mode.PRIVATE) & part.part
    # Esquisse16 → Enlèv. mat.-Extru.11 (cut, up to next)
    with BuildSketch(Plane(origin=(100, 0, 0), x_dir=(0, 0, -1), z_dir=(1, 0, 0)), mode=Mode.PRIVATE) as enl_v_mat_extru_11_sk2:
        with Locations((-55, 52)):
            Circle(ESQUISSE16_R_2)
    enl_v_mat_extru_11_tool2 = extrude(enl_v_mat_extru_11_sk2.sketch, amount=-ENL_V_MAT_EXTRU_11_REACH, mode=Mode.PRIVATE) & part.part
    add(enl_v_mat_extru_11_tool1.solids().sort_by_distance((100, 62, 25))[0], mode=Mode.SUBTRACT)
    add(enl_v_mat_extru_11_tool2.solids().sort_by_distance((100, 52, 55))[0], mode=Mode.SUBTRACT)

    # Esquisse17 → Enlèv. mat.-Extru.12 (cut)
    with BuildSketch(Plane(origin=(0, 0, 5), x_dir=(-1, 0, 0), z_dir=(0, 0, -1))):
        Polygon((-88.283089538, 20), (-52, 20), (-52, 12), (-53.5, 12), (-53.5, 18), (-88.283089538, 18), align=None)
    extrude(amount=-ENL_V_MAT_EXTRU_12_DEPTH, mode=Mode.SUBTRACT)


solid = part.part
